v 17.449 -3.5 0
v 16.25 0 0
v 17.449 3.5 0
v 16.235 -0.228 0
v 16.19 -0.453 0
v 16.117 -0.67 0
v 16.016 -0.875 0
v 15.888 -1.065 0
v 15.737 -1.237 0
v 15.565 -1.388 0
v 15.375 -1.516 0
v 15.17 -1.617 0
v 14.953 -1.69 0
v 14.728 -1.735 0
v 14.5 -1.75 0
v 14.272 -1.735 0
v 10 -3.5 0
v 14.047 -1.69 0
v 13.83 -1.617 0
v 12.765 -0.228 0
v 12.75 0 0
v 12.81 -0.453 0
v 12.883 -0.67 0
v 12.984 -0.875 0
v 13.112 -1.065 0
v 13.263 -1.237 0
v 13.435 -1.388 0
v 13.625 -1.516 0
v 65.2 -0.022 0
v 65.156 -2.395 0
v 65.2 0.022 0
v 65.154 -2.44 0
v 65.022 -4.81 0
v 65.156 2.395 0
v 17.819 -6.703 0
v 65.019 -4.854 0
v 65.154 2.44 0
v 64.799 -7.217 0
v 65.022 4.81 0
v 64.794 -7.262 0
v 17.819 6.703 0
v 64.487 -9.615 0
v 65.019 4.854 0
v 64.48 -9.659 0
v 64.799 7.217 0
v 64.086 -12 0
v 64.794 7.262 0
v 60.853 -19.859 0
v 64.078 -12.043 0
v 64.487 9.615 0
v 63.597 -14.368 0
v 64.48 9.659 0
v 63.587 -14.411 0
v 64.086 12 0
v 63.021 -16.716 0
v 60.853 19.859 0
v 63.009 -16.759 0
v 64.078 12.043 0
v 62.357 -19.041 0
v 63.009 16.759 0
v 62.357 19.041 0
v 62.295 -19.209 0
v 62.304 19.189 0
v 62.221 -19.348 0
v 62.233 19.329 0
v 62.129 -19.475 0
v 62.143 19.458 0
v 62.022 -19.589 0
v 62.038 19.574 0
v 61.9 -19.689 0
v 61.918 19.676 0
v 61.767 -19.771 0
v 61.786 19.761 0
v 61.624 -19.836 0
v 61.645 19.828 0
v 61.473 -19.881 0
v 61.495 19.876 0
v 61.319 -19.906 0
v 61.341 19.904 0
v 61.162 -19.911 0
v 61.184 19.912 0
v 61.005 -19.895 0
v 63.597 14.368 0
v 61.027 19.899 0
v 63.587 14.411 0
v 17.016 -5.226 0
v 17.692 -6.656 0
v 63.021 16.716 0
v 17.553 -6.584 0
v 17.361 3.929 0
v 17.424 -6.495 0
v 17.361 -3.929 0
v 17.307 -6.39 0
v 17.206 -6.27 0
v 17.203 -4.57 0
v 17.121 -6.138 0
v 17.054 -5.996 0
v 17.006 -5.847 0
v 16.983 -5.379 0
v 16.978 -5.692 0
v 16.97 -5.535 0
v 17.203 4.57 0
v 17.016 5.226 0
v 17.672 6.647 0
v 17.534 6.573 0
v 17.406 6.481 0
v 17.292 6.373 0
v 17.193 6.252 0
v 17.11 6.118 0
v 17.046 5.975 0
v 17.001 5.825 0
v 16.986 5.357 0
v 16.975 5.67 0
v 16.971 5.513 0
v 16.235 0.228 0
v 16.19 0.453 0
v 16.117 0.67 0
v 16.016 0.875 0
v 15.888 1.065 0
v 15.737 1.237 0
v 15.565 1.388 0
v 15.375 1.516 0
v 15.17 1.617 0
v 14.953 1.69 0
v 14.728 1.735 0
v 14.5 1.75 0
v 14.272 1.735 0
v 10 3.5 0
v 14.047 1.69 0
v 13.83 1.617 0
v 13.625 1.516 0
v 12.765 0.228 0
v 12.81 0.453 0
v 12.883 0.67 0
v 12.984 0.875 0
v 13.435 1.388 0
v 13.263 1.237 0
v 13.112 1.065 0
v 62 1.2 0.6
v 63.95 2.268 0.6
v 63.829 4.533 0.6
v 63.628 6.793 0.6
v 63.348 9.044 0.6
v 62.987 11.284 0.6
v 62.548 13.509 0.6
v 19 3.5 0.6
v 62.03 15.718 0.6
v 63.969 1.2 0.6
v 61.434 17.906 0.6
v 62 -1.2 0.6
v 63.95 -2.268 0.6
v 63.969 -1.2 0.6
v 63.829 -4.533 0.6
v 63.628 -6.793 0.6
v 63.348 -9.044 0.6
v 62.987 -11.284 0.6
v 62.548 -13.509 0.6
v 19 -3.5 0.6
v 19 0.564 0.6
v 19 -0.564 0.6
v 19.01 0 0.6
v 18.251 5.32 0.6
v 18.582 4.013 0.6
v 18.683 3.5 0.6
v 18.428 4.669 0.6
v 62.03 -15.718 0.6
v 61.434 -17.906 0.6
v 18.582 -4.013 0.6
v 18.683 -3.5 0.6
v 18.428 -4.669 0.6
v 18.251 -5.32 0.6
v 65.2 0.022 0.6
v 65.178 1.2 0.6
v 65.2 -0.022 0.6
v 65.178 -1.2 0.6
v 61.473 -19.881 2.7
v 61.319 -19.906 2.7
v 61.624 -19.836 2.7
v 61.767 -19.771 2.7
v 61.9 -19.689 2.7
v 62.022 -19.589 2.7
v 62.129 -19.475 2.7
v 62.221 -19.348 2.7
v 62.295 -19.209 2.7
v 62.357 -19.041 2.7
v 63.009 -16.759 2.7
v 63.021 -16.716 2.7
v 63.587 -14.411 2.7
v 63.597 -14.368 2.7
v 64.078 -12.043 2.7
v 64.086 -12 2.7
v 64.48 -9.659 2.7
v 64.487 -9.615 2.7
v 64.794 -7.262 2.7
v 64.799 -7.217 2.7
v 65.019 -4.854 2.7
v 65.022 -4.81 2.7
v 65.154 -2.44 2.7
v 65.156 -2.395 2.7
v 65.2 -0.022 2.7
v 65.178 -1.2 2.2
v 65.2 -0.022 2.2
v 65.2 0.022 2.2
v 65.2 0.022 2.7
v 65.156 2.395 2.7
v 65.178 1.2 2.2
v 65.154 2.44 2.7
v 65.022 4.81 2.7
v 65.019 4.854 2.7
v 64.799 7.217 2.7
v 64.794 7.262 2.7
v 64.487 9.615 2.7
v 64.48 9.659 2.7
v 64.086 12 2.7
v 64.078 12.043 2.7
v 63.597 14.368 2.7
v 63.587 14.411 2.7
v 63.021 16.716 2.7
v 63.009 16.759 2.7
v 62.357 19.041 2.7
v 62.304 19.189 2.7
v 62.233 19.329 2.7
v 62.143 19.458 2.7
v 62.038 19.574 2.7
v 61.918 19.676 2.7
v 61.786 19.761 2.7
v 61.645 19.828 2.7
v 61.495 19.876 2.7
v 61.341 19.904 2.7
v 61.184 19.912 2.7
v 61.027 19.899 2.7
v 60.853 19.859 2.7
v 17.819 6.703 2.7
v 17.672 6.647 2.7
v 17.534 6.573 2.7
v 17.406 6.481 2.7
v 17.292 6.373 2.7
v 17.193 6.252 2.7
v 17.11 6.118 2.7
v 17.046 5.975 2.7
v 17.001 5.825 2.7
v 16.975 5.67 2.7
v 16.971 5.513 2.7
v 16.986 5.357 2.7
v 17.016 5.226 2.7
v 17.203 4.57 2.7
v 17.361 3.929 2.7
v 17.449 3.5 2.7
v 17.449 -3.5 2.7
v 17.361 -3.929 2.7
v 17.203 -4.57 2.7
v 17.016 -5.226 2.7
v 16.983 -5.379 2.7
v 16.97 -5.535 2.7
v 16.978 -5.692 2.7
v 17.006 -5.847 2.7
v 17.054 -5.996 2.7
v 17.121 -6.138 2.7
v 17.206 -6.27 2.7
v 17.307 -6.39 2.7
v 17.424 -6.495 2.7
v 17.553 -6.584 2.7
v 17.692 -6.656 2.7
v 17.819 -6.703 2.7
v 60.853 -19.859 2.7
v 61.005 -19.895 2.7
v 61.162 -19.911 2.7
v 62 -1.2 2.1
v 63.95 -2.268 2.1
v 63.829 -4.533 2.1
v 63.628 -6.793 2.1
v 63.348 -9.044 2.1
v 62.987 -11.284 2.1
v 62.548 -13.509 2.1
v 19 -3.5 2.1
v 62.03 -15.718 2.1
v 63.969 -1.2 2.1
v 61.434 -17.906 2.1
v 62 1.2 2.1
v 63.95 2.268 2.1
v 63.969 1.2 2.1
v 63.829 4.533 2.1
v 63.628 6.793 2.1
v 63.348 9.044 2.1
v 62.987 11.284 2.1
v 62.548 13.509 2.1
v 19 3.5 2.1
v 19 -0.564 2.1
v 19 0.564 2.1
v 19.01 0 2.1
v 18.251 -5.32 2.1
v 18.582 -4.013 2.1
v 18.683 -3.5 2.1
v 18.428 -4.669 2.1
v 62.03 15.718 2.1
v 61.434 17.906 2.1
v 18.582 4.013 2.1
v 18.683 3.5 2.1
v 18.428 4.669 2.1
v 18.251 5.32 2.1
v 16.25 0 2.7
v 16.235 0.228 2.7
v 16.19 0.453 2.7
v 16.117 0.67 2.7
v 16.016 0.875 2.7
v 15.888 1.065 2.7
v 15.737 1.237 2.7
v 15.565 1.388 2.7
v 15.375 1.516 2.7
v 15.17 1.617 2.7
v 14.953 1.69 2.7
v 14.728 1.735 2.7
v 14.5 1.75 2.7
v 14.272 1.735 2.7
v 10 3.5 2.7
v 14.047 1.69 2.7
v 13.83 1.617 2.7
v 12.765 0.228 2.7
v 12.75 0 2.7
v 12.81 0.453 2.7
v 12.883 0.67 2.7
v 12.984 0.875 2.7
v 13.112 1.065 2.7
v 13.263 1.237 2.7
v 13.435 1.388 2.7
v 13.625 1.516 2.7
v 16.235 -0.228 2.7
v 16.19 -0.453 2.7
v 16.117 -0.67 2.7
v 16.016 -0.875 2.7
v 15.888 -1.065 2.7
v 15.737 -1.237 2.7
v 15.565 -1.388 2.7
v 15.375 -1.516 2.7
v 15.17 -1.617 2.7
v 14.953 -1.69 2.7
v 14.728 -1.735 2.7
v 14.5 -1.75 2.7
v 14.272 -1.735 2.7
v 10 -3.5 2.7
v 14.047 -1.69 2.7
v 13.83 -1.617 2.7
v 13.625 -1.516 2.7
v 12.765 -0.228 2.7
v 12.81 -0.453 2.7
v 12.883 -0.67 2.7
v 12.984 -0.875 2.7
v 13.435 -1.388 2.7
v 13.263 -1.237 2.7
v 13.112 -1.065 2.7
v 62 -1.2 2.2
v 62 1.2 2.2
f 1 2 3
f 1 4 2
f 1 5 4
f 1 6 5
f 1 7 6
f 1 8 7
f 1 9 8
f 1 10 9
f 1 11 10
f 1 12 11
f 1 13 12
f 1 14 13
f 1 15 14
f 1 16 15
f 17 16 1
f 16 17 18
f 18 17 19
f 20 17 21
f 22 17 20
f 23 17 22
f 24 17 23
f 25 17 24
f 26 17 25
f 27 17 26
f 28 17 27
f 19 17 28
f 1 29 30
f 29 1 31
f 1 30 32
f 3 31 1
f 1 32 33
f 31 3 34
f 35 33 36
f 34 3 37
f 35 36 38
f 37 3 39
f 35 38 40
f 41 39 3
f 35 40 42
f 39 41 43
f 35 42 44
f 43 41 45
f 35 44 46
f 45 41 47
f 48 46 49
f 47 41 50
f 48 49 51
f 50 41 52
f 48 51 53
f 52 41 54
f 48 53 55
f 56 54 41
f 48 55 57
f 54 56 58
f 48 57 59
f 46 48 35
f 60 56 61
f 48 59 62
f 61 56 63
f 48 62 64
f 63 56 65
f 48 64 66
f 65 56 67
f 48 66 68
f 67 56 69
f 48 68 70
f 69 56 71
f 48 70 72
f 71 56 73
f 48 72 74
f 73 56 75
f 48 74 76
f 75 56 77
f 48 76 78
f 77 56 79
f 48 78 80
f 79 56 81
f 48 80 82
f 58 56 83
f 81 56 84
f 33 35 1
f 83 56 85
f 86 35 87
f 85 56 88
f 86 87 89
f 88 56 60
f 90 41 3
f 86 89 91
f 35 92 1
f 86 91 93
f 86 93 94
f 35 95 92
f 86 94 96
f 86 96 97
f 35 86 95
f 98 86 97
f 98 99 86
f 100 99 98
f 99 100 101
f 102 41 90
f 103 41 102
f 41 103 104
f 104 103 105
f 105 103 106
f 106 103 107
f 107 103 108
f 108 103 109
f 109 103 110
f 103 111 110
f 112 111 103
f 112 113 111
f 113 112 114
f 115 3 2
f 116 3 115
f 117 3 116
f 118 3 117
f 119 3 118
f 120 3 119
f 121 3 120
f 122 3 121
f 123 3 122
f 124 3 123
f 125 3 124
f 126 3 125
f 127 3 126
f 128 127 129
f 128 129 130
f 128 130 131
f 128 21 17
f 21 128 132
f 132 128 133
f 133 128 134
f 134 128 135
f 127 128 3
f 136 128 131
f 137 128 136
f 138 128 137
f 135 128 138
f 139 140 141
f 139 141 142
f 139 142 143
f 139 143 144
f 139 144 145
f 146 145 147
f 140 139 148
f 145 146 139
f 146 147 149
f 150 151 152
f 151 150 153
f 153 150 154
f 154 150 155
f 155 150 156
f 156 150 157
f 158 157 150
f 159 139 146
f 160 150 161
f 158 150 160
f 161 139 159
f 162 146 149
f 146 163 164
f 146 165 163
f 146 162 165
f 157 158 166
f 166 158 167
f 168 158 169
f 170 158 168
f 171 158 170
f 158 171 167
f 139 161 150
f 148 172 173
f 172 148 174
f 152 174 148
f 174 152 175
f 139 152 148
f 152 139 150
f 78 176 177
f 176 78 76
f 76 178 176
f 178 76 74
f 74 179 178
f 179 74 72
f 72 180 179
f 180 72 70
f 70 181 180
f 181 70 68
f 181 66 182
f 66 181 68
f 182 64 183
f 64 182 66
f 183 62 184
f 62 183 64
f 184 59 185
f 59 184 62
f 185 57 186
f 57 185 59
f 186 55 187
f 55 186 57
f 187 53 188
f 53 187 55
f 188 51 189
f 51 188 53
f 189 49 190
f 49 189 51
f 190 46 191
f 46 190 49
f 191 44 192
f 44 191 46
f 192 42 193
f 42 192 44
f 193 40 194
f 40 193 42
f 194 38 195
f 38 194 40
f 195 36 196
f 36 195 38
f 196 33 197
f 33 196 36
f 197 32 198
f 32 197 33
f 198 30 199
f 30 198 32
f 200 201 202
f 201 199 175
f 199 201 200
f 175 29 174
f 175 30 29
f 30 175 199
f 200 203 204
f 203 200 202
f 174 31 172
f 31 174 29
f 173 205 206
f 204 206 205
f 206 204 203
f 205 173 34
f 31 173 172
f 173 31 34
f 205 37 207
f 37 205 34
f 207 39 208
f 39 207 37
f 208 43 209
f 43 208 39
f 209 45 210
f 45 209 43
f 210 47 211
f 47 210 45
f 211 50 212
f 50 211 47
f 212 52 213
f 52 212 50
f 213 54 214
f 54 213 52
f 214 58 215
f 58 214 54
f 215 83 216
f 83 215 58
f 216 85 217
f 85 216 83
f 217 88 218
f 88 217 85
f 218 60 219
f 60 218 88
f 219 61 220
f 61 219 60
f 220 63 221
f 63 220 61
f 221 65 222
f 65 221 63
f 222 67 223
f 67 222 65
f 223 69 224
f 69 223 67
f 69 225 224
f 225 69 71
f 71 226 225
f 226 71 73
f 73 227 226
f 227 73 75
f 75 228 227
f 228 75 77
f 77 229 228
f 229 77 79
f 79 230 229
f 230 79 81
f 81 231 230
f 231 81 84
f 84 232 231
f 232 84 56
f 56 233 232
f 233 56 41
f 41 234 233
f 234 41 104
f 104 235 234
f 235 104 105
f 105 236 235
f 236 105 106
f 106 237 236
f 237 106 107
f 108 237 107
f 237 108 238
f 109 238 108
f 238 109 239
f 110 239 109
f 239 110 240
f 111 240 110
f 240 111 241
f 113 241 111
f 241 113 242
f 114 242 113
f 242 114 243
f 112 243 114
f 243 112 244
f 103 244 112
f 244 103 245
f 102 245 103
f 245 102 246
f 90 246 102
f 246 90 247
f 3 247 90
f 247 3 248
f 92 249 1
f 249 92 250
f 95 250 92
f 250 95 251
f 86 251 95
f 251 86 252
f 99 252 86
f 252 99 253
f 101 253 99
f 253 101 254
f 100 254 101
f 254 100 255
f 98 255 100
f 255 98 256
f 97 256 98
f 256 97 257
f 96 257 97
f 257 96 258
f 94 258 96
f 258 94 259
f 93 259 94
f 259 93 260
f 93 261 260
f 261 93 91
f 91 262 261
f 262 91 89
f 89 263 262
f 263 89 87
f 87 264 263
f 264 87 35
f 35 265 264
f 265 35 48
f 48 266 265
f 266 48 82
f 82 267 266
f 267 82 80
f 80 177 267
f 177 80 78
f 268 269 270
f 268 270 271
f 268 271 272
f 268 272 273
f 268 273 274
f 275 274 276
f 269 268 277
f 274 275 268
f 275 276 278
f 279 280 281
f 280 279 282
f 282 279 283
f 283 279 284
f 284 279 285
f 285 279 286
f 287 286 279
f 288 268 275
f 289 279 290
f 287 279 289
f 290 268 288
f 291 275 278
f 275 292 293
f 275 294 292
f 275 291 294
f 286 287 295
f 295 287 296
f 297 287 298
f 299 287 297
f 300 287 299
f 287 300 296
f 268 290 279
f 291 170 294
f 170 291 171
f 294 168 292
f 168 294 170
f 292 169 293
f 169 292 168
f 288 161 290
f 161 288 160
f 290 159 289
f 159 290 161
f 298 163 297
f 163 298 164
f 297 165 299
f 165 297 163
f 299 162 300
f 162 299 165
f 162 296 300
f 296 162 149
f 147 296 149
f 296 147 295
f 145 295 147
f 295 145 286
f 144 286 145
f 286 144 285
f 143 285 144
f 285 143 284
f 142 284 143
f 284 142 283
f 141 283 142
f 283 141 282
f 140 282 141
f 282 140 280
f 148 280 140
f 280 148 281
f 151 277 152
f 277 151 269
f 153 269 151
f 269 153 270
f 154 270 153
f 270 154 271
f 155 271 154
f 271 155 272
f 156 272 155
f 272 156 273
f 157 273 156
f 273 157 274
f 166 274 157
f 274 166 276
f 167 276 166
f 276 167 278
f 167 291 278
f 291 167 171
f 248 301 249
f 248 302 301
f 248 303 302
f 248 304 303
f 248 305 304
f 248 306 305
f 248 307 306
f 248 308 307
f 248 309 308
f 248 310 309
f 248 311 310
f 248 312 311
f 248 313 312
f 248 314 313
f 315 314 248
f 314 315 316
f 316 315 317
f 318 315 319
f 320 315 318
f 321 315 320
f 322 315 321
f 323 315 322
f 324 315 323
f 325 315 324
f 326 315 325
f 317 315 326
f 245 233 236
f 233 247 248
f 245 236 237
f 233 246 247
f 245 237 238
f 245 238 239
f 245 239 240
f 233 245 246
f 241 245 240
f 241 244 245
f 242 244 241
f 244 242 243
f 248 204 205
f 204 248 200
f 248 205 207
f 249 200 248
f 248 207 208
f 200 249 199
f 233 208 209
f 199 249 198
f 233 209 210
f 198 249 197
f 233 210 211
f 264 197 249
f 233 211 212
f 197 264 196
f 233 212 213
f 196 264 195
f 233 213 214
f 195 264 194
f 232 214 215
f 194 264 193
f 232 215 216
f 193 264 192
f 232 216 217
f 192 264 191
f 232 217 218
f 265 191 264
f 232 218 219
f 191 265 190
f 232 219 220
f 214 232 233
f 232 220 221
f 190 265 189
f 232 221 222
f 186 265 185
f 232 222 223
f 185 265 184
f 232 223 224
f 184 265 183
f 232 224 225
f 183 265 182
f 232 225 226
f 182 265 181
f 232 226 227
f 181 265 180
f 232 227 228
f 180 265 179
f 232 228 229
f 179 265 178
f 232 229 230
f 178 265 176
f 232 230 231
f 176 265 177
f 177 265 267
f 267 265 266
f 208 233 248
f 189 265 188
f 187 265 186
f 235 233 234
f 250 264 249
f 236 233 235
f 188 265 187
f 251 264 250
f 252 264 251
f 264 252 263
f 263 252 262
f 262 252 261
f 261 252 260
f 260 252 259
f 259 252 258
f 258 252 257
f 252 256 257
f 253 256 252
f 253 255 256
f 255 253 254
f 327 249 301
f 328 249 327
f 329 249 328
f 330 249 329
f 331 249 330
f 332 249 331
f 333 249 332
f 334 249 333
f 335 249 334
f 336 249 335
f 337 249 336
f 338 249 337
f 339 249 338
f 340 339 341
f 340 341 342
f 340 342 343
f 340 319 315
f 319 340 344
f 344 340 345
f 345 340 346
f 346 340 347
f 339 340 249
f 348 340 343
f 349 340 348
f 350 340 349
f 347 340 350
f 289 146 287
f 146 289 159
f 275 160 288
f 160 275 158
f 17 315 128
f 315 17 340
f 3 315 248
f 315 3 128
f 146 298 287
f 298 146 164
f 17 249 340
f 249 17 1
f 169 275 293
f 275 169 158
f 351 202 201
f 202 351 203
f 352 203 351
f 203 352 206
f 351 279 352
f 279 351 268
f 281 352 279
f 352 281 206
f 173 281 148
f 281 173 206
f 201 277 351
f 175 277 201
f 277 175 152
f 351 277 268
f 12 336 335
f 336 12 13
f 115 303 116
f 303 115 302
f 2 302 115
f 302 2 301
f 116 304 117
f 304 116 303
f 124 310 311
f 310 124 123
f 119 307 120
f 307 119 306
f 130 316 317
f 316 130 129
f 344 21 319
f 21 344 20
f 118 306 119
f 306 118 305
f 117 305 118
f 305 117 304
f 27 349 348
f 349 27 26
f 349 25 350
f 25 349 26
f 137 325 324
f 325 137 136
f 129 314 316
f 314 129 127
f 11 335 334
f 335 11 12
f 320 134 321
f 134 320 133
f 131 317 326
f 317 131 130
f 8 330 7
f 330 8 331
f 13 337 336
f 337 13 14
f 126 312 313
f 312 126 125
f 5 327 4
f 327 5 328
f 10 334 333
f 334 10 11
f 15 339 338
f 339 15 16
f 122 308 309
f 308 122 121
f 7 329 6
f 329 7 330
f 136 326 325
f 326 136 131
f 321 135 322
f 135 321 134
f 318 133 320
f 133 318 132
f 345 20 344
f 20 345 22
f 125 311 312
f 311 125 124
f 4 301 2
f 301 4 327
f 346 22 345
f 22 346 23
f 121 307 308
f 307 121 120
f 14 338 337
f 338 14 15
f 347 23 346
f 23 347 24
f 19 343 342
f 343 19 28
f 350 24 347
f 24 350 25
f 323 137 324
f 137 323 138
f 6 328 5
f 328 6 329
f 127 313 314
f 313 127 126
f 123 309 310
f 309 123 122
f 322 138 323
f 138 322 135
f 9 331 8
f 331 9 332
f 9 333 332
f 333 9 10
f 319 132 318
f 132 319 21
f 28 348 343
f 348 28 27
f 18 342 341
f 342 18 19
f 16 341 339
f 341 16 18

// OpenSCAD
// file: parameters.scad
// =============================================================================
// Gen-AI Stacked dual-stator mid-rotor copper-max — WOUND-AWARE (HARD GATE)
// ONE mid dual-face Halbach rotor | TWO wound pancake stators | 18 coils ×145 t
// =============================================================================

wire_awg            = 26;
wire_od             = 0.45;
turns               = 145;      // 9 coils/stator ×2 = 18 ×145 ×~0.122 ≈ 318 m
fill                = 0.70;
layers_per_face     = 2;
wind_build_axial    = layers_per_face * wire_od * fill;   // 0.63
wind_build_radial   = 3 * wire_od * fill;                 // 0.945

coil_id_r           = 19.0;
coil_od_r           = 64.0;
span_deg            = 34.0;     // 9 stations × 40°
former_web          = 1.50;
flange_t            = 0.60;
wall                = 1.2;
slot_w              = 2.4;
mount_hole          = 3.5;
tab_len             = 7.0;

former_bare_h       = former_web + 2 * flange_t;            // 2.70
coil_envelope_h     = former_bare_h + 2 * wind_build_axial; // 3.96

run_clear           = 0.52;
gap_spacer_h        = run_clear + wind_build_axial;         // 1.15
m2m                 = coil_envelope_h + 2 * run_clear;      // 5.00 per gap

coil_stations       = 9;        // per stator; ×2 = 18 total
bay_r_in            = coil_id_r - 2.0 - wind_build_radial;
bay_r_out           = coil_od_r + 2.0 + wind_build_radial;
bay_span            = span_deg + 4.0;
bay_offset          = 2.0;
bay_depth           = former_bare_h + wind_build_axial;     // wound sits in bay
stator_back_web     = 2.0;
stator_thick        = bay_depth + stator_back_web;
stator_od           = 156.0;
shaft_clear_stator  = 38.0;
coil_mount_r        = 28.0;

large_pocket_d      = 20.3;
small_pocket_d      = 5.3;
pocket_h            = 5.2;
large_n             = 8;
R_large             = 42.0;
R_small_inner       = 28.0;
R_small_mid         = 42.0;
R_small_outer       = 58.0;
carrier_od          = 154.0;
mid_carrier_thick   = 12.0;
hub_h               = 10.0;
hub_od              = 30.0;
rotor_b_offset_deg  = 22.5;

shaft_bore          = 8.35;
bearing_d           = 21.85;
bearing_h           = 7.2;
m3_clear            = 3.5;
bolt_r_inner        = 36.0;
bolt_n_inner        = 6;
flange_bolt_r       = 72.0;
flange_bolt_n       = 6;
brace_r             = 68.0;
brace_d             = 4.3;
brace_n             = 4;

spacer_pad_od       = 14.0;
spacer_pad_id       = m3_clear;
endbell_od          = 156.0;
endbell_thick       = 8.0;
endbell_shaft_clear = 10.0;

$fn = 64;
// main file
// Gen-AI pancake former — wind BEFORE assembly
include <parameters.scad>;
$fn = 48;

module sector_2d(r_in, r_out, ang) {
    polygon([
        for (a = [-ang/2 : ang/16 : ang/2]) [r_in*cos(a), r_in*sin(a)],
        for (a = [ang/2 : -ang/16 : -ang/2]) [r_out*cos(a), r_out*sin(a)]
    ]);
}
module flange() {
    linear_extrude(flange_t) offset(r=wall) sector_2d(coil_id_r, coil_od_r, span_deg);
}
difference() {
    union() {
        flange();
        translate([0, 0, flange_t])
            linear_extrude(former_web)
                difference() {
                    offset(r=wall) sector_2d(coil_id_r, coil_od_r, span_deg);
                    sector_2d(coil_id_r + 0.01, coil_od_r - 0.01, span_deg - 1.5);
                }
        translate([0, 0, flange_t + former_web]) flange();
        translate([coil_id_r - tab_len - 2, -3.5, 0])
            cube([tab_len + 2, 7, former_bare_h]);
    }
    translate([coil_od_r - 2, -slot_w/2, flange_t])
        cube([wall + 4, slot_w, former_web + 0.1]);
    translate([coil_id_r - tab_len/2 - 1, 0, -0.1])
        cylinder(d=mount_hole, h=former_bare_h + 1);
}
